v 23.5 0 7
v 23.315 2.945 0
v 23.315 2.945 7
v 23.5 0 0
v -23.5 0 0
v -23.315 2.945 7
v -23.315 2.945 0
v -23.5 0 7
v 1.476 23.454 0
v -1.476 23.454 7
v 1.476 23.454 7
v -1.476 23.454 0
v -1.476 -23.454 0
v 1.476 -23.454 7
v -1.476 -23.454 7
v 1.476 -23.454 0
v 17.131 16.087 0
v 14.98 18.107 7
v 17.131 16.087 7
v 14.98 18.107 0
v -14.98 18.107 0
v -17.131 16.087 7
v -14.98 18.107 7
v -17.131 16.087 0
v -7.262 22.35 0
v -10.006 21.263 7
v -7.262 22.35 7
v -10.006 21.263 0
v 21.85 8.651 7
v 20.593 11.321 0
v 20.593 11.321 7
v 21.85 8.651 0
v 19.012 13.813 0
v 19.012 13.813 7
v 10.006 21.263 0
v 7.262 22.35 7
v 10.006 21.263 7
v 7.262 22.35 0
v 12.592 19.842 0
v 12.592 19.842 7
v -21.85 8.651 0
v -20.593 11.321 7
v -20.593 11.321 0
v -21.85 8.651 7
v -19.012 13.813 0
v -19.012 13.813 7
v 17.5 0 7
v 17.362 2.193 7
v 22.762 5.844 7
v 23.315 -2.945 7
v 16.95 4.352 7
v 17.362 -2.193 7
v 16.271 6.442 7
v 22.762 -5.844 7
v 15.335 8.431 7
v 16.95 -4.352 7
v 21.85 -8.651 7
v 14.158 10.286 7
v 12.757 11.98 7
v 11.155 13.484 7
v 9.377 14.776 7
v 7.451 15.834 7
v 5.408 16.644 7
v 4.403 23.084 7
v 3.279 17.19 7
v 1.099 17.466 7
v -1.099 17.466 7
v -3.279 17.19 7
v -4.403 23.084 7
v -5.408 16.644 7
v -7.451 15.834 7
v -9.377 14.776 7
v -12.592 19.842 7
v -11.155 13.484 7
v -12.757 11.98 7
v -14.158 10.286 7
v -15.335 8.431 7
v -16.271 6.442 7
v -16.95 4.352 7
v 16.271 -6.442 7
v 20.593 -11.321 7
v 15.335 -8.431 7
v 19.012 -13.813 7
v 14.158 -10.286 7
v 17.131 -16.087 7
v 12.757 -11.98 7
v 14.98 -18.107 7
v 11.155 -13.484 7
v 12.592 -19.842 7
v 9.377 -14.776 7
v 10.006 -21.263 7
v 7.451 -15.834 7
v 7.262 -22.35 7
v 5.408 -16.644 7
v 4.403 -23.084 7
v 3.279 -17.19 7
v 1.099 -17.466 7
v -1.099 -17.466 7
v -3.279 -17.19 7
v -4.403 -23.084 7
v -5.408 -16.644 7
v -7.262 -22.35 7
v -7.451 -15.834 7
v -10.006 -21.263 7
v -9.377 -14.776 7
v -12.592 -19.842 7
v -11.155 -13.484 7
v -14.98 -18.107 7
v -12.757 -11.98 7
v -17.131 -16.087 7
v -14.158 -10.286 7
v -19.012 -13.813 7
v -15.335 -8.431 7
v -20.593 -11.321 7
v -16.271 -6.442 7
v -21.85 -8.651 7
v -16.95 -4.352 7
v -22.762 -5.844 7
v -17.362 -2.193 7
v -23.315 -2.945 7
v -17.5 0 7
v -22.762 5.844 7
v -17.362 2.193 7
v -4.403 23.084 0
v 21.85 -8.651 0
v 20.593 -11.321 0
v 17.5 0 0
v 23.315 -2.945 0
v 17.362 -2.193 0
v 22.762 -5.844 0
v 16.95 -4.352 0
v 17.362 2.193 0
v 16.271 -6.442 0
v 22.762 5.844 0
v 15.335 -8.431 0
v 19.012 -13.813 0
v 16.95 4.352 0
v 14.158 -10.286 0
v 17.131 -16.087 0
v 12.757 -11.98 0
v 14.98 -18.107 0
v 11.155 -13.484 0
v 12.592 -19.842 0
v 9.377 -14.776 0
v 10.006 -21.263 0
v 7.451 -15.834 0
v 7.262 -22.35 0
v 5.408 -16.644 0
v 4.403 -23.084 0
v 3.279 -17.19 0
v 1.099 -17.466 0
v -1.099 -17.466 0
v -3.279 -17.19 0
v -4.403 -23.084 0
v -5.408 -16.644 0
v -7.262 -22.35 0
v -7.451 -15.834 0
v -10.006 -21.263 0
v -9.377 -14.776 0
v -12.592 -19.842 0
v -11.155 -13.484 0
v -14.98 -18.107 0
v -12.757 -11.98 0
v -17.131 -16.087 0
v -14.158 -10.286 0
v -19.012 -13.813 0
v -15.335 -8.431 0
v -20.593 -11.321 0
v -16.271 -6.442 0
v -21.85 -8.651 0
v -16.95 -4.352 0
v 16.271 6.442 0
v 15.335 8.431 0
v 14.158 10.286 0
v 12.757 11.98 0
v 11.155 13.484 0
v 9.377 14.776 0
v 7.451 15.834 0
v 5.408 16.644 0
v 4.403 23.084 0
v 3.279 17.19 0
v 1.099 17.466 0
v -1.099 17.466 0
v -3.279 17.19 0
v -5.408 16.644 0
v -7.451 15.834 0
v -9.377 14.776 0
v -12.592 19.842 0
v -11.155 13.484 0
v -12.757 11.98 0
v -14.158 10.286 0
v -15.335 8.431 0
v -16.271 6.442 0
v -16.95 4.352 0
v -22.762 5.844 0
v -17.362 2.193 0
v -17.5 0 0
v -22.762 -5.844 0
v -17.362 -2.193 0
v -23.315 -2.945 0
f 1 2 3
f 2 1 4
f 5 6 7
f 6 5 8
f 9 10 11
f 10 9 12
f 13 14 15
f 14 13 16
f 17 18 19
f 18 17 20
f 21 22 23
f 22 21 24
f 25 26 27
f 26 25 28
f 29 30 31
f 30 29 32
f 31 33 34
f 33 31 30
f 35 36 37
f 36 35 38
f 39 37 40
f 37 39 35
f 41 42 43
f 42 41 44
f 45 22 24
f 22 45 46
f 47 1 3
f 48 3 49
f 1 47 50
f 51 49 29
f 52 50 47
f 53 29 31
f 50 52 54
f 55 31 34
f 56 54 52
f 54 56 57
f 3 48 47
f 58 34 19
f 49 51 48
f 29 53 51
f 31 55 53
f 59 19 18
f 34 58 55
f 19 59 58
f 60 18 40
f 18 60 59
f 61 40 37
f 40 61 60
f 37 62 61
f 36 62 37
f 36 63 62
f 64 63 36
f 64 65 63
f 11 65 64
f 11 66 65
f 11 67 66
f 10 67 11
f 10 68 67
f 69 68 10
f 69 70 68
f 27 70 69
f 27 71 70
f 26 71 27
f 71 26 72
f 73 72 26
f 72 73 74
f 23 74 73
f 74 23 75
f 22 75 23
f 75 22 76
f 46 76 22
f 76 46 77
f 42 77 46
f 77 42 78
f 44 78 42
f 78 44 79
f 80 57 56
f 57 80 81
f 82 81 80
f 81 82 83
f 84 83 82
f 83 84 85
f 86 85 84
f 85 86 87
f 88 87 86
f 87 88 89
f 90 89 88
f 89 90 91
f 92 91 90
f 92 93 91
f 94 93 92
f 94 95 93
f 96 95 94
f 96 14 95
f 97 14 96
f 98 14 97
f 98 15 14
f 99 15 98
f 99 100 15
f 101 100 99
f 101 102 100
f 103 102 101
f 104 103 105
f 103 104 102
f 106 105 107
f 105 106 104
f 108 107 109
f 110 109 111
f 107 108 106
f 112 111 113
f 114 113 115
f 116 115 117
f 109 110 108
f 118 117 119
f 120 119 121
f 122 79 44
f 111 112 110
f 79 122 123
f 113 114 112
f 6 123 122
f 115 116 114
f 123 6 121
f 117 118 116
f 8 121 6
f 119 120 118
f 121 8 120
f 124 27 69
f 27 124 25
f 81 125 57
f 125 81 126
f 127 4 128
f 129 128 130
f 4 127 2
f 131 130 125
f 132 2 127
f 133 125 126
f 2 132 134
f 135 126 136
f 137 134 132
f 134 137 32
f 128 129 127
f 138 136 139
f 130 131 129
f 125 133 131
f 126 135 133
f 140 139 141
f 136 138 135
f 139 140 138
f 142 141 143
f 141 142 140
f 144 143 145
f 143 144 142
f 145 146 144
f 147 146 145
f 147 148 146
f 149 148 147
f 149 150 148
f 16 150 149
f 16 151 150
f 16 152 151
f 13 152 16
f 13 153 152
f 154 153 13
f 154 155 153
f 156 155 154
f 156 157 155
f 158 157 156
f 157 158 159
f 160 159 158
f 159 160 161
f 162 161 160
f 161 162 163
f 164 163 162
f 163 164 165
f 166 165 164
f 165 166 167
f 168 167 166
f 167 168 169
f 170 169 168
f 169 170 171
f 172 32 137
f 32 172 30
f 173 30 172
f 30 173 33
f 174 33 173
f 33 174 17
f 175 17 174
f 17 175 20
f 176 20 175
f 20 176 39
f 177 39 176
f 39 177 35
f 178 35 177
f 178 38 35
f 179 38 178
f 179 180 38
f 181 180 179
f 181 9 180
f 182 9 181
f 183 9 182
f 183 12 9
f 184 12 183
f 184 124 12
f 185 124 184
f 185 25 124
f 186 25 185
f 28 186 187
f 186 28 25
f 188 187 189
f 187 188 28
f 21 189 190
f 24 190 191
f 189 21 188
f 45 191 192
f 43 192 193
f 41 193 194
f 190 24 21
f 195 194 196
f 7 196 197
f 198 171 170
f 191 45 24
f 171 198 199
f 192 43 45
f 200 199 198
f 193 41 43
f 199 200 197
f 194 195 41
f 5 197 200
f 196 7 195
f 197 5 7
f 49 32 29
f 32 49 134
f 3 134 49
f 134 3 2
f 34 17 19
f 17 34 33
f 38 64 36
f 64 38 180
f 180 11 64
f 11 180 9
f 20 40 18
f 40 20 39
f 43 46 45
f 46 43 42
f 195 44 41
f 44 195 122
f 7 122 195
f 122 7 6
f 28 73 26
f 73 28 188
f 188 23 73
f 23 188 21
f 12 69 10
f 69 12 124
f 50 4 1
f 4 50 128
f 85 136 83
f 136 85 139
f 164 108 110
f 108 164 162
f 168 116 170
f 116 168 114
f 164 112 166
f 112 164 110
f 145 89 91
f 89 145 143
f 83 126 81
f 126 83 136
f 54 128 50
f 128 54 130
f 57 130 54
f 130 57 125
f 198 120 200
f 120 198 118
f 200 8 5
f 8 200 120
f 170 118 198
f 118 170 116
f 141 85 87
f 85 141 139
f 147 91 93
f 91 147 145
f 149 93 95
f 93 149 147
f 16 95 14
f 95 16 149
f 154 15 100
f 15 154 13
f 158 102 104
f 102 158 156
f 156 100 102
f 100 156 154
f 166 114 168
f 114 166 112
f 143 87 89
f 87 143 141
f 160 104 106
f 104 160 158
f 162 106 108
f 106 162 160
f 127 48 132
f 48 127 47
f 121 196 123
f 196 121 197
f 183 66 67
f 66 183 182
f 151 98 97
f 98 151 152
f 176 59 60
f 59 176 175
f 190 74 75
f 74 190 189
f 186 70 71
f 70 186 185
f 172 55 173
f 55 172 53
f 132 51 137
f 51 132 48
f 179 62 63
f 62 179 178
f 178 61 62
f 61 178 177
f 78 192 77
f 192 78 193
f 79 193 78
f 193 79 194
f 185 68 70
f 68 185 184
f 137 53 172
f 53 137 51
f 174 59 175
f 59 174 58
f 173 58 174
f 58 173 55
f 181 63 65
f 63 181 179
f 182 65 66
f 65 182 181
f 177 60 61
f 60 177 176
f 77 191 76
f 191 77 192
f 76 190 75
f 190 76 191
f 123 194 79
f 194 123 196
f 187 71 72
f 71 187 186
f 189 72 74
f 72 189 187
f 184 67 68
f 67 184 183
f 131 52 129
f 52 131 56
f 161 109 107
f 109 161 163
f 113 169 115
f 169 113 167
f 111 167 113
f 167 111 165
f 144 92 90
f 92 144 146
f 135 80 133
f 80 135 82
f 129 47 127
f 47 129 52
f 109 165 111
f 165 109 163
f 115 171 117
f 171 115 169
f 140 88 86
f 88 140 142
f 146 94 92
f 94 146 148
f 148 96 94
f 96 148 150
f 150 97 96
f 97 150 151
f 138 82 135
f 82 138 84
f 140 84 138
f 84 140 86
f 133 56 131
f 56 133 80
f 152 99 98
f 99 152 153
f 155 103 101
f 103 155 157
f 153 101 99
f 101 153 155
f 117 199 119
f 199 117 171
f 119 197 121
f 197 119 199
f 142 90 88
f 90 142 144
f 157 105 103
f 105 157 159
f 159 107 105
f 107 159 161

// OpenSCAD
$fn = 50;


difference() {
	union() {
		cylinder(h = 7, r = 23.5000000000);
	}
	union() {
		cylinder(h = 7, r = 17.5000000000);
	}
}
